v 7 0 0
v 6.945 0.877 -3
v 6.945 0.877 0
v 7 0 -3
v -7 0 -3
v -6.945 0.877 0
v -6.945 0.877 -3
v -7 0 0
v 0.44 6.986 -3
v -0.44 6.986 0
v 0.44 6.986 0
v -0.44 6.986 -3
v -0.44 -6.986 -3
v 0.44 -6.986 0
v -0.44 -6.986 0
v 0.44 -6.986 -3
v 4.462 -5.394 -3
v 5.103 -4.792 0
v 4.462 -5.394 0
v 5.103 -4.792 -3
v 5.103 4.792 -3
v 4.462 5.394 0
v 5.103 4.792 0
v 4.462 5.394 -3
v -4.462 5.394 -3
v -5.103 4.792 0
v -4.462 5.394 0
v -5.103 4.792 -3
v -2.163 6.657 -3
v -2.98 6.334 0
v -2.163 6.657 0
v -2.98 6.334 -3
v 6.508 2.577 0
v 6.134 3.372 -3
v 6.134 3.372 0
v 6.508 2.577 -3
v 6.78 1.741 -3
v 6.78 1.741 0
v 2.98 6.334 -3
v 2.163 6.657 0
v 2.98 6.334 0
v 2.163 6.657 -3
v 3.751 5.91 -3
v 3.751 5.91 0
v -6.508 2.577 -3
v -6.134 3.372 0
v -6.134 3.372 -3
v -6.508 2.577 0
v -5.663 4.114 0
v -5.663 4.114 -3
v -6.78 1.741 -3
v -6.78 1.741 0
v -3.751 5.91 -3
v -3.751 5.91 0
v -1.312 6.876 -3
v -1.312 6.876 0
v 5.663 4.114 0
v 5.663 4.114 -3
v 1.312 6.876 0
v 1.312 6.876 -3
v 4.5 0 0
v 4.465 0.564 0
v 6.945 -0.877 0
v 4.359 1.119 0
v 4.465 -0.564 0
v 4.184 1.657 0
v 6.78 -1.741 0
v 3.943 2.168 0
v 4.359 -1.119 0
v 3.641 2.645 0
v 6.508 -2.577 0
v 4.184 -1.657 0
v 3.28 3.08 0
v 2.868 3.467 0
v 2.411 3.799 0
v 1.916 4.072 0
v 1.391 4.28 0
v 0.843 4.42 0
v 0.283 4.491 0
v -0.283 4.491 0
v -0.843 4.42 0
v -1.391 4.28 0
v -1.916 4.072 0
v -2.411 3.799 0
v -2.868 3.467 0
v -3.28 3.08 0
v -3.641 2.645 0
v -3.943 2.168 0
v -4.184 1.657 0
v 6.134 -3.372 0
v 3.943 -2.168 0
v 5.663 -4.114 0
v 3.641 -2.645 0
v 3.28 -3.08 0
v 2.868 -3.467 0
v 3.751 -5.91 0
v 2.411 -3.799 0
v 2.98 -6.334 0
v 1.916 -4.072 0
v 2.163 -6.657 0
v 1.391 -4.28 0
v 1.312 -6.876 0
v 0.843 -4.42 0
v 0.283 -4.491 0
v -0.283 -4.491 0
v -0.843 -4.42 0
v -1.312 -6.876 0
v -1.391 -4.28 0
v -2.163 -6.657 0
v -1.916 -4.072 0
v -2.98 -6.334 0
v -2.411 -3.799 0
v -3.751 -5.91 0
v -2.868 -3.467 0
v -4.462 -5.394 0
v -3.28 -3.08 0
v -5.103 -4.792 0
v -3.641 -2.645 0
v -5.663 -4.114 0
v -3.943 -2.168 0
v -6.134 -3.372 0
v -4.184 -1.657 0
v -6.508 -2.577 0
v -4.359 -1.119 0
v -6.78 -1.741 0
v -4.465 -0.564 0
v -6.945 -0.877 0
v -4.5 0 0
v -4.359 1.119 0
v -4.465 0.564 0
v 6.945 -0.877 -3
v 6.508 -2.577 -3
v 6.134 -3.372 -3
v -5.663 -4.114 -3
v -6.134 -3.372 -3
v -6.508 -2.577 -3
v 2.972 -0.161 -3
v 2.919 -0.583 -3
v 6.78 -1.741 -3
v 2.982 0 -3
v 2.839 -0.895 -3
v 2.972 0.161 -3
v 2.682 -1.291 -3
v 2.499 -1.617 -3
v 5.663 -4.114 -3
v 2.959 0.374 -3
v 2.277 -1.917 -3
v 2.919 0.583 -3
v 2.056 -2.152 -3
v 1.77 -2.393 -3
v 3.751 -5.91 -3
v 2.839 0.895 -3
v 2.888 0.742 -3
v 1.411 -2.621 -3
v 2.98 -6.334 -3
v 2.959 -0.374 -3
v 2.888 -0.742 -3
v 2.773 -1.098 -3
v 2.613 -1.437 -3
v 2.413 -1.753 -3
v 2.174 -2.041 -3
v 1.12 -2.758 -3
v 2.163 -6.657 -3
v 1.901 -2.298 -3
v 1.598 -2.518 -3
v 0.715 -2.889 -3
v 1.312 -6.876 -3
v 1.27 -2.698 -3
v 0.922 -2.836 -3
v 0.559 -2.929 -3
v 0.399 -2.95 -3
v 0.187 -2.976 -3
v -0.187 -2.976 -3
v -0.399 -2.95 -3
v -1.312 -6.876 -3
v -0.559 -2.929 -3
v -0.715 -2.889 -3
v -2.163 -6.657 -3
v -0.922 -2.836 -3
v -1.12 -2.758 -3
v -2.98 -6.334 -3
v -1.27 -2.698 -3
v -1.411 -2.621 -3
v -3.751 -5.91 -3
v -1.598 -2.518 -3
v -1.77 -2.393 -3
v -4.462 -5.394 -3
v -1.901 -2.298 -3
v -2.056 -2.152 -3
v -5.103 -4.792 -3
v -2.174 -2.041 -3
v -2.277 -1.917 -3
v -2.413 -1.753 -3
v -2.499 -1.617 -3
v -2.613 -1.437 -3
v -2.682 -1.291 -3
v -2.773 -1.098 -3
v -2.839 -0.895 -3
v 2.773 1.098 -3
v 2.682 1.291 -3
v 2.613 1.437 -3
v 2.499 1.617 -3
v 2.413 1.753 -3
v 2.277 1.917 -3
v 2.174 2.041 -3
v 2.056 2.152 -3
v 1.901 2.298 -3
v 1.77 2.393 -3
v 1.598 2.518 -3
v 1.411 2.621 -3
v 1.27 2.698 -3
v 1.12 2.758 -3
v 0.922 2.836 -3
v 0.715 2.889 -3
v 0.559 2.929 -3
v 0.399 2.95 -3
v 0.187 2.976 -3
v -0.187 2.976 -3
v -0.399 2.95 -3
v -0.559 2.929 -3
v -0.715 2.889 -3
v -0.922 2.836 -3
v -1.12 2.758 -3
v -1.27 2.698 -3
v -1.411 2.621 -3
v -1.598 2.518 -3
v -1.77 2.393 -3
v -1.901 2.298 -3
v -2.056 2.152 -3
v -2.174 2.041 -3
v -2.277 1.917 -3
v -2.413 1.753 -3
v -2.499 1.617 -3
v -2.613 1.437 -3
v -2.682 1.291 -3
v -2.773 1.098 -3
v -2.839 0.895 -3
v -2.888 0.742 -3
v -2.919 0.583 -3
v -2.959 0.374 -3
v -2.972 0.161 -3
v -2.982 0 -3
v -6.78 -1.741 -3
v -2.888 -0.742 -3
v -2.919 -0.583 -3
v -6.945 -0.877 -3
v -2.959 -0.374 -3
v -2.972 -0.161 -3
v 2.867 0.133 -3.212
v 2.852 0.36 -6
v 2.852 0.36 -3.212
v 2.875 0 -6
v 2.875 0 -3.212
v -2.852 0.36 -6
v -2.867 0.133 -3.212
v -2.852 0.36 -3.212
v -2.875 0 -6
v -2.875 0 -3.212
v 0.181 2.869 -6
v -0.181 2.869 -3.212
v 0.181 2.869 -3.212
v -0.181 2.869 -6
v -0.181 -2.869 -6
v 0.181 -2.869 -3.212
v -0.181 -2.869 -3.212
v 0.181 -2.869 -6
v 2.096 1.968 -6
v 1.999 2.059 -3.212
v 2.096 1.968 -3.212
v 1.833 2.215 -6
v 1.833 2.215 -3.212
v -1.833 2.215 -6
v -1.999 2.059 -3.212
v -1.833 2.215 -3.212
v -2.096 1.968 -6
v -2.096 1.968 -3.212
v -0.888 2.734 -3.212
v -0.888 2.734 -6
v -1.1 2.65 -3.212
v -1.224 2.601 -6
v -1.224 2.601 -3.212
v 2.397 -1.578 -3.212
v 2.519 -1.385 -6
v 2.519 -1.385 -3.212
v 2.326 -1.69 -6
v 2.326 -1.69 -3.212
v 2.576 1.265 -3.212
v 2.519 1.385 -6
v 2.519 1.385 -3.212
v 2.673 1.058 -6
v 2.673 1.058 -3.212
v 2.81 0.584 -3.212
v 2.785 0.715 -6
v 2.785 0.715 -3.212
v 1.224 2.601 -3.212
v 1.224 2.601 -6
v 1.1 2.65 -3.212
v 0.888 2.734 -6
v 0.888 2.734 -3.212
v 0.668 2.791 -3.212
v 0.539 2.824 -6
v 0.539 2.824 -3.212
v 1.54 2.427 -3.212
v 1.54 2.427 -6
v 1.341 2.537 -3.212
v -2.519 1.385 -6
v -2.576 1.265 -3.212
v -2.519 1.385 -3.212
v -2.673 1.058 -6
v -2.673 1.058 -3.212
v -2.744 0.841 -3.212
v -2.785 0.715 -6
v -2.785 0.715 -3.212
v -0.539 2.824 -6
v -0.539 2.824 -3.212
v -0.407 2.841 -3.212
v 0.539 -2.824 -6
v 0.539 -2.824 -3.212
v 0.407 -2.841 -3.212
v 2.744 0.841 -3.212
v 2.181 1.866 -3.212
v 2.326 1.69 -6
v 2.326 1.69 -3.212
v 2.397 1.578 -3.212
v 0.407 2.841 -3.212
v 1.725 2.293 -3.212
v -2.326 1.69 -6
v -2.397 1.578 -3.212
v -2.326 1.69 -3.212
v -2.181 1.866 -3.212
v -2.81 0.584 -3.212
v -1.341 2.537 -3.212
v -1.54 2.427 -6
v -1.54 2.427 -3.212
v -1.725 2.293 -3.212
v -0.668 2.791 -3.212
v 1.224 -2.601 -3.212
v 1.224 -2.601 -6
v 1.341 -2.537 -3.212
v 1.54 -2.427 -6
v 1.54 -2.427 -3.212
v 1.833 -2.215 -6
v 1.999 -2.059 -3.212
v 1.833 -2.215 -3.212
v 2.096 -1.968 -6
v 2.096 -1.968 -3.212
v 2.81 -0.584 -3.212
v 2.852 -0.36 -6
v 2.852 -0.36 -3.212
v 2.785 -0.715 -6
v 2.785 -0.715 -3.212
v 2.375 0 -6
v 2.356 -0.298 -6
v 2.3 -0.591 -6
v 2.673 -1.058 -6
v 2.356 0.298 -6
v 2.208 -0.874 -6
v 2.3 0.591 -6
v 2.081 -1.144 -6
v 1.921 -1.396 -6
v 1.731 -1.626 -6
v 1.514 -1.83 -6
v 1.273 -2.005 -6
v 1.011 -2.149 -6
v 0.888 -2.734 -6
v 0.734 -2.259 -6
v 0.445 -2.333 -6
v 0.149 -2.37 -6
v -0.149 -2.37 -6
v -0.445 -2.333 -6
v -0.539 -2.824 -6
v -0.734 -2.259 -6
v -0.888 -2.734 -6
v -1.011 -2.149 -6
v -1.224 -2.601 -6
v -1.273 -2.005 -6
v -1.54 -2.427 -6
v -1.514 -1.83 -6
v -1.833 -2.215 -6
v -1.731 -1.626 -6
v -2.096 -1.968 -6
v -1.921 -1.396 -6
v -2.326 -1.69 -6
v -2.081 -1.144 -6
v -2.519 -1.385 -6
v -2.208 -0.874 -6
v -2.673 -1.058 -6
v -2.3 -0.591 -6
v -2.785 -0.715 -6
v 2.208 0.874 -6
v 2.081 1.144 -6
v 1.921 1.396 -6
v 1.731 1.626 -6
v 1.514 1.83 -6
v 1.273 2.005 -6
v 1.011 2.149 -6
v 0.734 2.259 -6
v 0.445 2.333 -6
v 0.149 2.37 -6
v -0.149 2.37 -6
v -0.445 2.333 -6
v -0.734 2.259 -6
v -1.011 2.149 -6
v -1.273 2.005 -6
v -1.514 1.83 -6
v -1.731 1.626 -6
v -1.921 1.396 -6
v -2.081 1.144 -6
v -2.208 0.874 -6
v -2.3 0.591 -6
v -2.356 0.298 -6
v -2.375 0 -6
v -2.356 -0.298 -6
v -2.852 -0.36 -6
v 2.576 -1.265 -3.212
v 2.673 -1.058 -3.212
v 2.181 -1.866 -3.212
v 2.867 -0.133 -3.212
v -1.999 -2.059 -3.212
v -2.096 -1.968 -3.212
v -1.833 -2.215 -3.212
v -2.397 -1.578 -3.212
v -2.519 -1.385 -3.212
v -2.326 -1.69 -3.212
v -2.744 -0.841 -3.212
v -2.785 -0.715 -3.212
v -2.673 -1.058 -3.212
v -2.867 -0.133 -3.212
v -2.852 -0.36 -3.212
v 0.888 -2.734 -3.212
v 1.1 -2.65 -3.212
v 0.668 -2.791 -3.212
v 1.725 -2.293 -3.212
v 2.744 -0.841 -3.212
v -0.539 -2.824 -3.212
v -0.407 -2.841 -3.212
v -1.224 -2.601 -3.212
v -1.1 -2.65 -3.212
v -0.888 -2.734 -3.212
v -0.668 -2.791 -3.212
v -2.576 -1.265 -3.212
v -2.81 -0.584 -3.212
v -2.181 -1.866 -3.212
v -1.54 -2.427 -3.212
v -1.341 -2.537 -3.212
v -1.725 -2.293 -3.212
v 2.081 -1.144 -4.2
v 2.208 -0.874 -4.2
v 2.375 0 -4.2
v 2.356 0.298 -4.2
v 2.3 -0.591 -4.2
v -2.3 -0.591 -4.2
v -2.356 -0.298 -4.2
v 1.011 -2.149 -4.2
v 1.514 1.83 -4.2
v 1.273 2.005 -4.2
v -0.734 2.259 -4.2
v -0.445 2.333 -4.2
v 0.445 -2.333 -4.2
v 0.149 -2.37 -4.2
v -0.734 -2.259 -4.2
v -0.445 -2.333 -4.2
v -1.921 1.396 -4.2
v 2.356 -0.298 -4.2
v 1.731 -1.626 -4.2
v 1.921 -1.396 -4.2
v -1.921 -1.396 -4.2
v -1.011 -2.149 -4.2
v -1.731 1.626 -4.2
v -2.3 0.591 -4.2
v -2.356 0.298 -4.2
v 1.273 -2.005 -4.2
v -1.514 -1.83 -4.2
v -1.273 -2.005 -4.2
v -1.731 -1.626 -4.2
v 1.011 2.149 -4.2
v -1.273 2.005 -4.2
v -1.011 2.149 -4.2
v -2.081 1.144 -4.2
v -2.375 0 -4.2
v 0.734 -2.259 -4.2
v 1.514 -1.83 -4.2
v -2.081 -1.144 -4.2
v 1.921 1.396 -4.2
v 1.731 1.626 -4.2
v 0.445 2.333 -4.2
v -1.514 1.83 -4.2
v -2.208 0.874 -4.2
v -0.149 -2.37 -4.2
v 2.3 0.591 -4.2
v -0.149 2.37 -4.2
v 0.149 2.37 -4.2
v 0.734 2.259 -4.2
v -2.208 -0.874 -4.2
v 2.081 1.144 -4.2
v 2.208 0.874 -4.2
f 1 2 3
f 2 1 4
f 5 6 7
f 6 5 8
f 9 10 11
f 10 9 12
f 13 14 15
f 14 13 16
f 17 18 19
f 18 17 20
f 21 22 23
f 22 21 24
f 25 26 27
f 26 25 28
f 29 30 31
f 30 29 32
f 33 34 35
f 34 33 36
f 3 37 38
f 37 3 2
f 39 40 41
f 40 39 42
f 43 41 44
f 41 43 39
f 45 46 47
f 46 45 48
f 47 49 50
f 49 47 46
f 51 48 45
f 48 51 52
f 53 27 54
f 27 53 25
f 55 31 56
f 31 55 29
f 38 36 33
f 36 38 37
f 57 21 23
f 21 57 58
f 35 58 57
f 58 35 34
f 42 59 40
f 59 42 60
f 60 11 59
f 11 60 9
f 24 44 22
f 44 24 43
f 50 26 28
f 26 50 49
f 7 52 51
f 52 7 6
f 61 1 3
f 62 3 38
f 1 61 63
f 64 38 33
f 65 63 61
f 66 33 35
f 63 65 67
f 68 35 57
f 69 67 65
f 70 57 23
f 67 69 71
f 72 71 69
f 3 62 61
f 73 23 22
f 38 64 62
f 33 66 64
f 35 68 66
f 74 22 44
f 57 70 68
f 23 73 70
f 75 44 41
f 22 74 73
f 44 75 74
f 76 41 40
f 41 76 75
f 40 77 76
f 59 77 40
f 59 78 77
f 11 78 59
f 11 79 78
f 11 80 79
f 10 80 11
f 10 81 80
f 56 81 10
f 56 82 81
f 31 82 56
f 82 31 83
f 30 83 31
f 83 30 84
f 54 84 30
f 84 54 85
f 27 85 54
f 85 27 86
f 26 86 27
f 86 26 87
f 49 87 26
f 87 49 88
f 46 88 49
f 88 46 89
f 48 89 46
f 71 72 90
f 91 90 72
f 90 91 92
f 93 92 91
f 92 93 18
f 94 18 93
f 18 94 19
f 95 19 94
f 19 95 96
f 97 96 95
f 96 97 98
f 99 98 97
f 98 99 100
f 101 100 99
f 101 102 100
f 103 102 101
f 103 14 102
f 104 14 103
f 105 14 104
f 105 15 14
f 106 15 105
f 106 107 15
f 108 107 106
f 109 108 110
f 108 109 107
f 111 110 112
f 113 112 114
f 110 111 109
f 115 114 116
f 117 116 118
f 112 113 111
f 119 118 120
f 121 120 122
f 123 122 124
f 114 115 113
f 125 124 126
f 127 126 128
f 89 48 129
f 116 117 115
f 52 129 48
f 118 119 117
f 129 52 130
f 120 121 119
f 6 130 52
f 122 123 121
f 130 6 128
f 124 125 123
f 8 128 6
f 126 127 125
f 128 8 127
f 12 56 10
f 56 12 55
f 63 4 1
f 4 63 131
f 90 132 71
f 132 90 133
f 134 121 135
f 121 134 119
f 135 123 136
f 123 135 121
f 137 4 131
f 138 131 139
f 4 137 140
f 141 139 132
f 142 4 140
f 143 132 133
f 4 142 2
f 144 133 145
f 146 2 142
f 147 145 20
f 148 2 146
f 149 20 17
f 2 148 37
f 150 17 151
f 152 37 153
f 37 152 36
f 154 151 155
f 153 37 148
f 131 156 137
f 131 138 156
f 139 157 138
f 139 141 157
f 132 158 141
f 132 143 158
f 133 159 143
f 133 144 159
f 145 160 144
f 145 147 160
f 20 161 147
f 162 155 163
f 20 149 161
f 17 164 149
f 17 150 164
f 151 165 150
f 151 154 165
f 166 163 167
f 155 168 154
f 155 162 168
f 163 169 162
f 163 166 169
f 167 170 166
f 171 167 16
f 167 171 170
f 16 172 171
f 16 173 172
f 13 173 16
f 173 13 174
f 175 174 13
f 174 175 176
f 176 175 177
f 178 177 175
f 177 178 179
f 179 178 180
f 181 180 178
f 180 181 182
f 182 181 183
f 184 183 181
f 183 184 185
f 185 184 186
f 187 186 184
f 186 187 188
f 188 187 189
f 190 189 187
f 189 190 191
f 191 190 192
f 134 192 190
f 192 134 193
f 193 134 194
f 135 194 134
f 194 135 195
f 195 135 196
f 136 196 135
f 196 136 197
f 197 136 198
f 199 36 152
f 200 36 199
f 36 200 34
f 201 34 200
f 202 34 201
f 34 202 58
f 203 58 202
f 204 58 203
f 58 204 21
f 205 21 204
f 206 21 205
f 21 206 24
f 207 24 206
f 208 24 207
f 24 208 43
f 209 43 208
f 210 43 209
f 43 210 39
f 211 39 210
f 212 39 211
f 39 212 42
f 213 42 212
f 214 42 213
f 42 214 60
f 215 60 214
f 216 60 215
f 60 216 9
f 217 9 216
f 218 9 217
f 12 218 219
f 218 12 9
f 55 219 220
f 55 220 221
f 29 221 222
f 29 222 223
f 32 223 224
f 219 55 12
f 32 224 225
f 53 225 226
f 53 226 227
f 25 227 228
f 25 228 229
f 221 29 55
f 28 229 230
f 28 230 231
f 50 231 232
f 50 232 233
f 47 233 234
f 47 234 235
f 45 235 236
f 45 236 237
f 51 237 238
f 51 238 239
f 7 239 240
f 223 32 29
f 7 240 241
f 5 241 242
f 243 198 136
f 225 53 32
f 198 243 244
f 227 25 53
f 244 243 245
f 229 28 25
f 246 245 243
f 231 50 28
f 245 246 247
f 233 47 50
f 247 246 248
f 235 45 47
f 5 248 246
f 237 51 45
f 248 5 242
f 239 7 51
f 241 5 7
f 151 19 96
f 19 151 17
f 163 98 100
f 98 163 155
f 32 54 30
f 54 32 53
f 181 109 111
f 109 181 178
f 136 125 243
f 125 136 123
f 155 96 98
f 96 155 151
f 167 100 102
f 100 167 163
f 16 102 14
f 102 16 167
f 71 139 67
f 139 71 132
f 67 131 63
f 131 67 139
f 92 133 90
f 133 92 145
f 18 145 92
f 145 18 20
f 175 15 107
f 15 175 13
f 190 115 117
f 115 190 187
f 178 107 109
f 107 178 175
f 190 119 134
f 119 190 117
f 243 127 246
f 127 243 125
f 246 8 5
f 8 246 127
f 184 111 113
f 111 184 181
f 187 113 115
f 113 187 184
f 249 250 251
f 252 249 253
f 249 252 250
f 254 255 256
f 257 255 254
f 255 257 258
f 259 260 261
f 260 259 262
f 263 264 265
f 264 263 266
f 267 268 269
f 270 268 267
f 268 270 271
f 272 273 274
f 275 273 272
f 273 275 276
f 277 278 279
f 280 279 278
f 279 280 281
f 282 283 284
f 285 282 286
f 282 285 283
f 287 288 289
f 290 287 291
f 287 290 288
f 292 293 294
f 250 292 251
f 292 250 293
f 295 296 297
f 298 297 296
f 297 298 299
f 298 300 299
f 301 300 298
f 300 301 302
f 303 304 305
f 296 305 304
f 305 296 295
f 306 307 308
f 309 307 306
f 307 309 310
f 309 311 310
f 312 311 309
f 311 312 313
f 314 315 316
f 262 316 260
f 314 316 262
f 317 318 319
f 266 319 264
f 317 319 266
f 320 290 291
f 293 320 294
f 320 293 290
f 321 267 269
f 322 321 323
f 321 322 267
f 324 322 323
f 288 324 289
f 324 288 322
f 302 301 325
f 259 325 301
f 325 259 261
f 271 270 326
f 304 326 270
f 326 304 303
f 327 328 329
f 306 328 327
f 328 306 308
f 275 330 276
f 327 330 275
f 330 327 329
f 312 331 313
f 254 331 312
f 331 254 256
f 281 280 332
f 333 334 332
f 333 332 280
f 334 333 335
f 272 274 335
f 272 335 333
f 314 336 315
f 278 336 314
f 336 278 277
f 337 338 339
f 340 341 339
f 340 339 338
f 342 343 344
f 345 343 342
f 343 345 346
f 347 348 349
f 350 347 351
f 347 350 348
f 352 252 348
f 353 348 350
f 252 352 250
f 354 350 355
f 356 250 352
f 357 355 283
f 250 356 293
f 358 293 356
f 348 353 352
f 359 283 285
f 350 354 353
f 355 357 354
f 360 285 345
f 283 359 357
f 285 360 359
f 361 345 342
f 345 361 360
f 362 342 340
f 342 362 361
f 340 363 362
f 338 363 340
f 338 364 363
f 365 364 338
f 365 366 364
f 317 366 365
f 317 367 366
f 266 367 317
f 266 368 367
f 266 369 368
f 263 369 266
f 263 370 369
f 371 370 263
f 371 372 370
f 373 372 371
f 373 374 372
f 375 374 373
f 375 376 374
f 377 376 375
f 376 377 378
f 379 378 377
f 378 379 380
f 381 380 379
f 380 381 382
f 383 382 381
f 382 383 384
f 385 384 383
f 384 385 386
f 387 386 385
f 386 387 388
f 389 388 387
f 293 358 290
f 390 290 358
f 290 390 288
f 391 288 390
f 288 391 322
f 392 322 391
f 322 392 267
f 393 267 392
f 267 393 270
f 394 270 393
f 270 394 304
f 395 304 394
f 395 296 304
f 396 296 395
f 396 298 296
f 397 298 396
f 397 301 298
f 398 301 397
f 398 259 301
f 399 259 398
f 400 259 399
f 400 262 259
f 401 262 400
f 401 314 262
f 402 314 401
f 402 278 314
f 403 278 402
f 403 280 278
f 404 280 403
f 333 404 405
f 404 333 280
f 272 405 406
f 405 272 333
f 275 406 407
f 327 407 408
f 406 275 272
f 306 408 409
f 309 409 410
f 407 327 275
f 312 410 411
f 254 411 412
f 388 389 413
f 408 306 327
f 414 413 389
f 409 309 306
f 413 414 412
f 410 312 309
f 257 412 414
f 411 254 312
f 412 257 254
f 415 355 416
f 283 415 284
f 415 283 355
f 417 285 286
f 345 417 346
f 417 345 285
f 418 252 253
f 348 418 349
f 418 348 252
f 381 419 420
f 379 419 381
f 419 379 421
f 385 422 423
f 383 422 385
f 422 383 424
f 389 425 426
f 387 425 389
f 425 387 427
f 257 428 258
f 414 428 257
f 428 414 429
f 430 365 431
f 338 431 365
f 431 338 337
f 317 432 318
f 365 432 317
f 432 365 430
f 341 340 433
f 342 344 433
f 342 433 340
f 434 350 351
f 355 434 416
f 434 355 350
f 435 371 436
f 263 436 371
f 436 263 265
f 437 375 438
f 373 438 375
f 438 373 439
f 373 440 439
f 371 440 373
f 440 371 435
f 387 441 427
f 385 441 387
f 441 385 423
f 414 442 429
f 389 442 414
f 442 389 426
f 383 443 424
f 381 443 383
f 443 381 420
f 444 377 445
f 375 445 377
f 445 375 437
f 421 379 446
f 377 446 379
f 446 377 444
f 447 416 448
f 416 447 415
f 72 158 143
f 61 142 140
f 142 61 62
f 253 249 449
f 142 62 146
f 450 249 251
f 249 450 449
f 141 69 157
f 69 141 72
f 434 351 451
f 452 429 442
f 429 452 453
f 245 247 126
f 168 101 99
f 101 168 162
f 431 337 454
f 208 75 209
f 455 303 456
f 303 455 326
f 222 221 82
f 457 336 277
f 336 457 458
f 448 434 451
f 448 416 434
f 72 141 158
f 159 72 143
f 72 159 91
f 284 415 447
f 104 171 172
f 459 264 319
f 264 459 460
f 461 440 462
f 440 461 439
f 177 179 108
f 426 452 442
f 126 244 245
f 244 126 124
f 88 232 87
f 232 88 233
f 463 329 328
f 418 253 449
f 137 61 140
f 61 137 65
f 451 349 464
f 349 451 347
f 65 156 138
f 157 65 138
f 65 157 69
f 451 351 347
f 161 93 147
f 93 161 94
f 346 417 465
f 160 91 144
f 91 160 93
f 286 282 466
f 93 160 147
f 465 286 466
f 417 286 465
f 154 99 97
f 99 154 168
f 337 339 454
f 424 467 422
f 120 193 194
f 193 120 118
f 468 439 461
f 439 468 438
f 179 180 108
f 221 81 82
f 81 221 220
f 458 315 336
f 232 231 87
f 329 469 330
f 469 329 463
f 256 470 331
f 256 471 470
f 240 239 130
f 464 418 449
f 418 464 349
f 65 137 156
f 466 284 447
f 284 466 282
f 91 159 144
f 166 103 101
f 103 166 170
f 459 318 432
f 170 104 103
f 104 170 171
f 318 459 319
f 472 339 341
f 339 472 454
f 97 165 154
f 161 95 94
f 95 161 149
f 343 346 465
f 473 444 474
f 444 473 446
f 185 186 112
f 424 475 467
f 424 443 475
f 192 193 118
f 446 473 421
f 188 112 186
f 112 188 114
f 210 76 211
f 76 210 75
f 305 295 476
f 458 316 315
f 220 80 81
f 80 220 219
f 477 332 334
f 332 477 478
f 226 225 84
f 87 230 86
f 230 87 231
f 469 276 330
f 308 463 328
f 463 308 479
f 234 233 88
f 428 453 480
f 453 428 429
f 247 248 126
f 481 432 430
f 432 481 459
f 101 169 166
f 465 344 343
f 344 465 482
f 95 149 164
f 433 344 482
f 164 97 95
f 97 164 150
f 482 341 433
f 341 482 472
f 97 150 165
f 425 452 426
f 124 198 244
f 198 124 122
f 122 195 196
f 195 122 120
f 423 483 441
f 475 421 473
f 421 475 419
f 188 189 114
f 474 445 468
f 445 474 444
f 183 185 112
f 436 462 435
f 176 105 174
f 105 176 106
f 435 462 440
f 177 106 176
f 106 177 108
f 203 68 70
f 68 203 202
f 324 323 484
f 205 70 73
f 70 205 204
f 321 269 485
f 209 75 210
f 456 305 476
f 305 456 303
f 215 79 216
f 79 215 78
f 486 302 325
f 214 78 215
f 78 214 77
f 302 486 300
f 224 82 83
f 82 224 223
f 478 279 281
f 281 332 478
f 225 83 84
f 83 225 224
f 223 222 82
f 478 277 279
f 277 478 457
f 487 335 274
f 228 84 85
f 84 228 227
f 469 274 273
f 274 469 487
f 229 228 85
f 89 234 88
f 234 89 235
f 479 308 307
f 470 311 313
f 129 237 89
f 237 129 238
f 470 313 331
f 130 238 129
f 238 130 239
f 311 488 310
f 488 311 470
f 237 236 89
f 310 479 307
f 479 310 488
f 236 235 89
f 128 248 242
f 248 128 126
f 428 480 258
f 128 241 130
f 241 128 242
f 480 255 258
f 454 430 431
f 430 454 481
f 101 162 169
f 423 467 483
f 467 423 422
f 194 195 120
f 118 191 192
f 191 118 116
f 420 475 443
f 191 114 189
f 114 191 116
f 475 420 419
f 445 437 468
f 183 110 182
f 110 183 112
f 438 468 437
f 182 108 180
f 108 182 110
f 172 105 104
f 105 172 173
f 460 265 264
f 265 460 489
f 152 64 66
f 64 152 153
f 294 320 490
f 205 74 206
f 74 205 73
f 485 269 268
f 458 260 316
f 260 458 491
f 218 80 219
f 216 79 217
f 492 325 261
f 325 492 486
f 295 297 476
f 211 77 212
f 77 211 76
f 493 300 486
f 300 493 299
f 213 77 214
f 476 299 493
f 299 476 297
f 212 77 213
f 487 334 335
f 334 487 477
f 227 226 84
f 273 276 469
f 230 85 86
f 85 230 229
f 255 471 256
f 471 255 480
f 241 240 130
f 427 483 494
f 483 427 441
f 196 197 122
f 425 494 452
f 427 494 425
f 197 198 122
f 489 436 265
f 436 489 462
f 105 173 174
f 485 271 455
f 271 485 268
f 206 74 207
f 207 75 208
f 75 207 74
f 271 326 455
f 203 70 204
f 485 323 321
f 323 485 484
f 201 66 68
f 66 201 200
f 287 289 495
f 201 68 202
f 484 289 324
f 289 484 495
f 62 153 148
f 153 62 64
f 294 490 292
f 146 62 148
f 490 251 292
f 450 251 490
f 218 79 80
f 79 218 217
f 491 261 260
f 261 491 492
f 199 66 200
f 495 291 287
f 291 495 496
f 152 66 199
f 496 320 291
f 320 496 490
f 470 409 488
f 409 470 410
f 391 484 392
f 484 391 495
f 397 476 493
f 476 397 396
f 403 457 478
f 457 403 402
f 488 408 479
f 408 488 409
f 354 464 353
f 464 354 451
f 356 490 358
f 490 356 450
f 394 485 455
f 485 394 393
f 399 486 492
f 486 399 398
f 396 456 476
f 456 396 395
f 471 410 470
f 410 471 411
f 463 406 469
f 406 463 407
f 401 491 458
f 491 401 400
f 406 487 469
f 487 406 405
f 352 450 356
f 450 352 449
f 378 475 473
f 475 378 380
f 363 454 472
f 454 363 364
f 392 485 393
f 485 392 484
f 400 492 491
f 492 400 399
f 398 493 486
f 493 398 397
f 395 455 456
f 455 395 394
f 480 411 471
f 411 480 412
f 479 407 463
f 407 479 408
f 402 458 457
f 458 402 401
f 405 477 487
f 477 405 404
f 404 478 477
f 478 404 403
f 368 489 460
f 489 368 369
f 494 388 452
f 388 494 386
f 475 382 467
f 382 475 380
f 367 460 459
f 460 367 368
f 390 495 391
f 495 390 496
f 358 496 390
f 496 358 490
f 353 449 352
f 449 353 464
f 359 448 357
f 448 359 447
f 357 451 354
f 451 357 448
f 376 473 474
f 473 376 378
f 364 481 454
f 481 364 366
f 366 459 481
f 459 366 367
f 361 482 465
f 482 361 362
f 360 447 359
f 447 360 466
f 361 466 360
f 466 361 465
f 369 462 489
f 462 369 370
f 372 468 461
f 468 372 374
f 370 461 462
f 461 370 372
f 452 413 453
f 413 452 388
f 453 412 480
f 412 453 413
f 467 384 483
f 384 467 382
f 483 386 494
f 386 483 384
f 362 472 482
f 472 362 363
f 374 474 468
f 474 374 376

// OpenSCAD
$fn = 50;


difference() {
	union() {
		translate(v = [0, 0, -3.0000000000]) {
			cylinder(h = 3, r = 7.0000000000);
		}
		translate(v = [0, 0, -6.0000000000]) {
			cylinder(h = 6, r = 2.8750000000);
		}
	}
	union() {
		translate(v = [0, 0, 0]) {
			rotate(a = [0, 0, 0]) {
				difference() {
					union() {
						translate(v = [0, 0, -6.0000000000]) {
							cylinder(h = 6, r = 2.2500000000);
						}
						translate(v = [0, 0, -4.2000000000]) {
							cylinder(h = 4.2000000000, r1 = 2.3750000000, r2 = 4.5000000000);
						}
						translate(v = [0, 0, -6.0000000000]) {
							cylinder(h = 6, r = 2.3750000000);
						}
						translate(v = [0, 0, -6.0000000000]) {
							cylinder(h = 6, r = 2.2500000000);
						}
					}
					union();
				}
			}
		}
	}
}
